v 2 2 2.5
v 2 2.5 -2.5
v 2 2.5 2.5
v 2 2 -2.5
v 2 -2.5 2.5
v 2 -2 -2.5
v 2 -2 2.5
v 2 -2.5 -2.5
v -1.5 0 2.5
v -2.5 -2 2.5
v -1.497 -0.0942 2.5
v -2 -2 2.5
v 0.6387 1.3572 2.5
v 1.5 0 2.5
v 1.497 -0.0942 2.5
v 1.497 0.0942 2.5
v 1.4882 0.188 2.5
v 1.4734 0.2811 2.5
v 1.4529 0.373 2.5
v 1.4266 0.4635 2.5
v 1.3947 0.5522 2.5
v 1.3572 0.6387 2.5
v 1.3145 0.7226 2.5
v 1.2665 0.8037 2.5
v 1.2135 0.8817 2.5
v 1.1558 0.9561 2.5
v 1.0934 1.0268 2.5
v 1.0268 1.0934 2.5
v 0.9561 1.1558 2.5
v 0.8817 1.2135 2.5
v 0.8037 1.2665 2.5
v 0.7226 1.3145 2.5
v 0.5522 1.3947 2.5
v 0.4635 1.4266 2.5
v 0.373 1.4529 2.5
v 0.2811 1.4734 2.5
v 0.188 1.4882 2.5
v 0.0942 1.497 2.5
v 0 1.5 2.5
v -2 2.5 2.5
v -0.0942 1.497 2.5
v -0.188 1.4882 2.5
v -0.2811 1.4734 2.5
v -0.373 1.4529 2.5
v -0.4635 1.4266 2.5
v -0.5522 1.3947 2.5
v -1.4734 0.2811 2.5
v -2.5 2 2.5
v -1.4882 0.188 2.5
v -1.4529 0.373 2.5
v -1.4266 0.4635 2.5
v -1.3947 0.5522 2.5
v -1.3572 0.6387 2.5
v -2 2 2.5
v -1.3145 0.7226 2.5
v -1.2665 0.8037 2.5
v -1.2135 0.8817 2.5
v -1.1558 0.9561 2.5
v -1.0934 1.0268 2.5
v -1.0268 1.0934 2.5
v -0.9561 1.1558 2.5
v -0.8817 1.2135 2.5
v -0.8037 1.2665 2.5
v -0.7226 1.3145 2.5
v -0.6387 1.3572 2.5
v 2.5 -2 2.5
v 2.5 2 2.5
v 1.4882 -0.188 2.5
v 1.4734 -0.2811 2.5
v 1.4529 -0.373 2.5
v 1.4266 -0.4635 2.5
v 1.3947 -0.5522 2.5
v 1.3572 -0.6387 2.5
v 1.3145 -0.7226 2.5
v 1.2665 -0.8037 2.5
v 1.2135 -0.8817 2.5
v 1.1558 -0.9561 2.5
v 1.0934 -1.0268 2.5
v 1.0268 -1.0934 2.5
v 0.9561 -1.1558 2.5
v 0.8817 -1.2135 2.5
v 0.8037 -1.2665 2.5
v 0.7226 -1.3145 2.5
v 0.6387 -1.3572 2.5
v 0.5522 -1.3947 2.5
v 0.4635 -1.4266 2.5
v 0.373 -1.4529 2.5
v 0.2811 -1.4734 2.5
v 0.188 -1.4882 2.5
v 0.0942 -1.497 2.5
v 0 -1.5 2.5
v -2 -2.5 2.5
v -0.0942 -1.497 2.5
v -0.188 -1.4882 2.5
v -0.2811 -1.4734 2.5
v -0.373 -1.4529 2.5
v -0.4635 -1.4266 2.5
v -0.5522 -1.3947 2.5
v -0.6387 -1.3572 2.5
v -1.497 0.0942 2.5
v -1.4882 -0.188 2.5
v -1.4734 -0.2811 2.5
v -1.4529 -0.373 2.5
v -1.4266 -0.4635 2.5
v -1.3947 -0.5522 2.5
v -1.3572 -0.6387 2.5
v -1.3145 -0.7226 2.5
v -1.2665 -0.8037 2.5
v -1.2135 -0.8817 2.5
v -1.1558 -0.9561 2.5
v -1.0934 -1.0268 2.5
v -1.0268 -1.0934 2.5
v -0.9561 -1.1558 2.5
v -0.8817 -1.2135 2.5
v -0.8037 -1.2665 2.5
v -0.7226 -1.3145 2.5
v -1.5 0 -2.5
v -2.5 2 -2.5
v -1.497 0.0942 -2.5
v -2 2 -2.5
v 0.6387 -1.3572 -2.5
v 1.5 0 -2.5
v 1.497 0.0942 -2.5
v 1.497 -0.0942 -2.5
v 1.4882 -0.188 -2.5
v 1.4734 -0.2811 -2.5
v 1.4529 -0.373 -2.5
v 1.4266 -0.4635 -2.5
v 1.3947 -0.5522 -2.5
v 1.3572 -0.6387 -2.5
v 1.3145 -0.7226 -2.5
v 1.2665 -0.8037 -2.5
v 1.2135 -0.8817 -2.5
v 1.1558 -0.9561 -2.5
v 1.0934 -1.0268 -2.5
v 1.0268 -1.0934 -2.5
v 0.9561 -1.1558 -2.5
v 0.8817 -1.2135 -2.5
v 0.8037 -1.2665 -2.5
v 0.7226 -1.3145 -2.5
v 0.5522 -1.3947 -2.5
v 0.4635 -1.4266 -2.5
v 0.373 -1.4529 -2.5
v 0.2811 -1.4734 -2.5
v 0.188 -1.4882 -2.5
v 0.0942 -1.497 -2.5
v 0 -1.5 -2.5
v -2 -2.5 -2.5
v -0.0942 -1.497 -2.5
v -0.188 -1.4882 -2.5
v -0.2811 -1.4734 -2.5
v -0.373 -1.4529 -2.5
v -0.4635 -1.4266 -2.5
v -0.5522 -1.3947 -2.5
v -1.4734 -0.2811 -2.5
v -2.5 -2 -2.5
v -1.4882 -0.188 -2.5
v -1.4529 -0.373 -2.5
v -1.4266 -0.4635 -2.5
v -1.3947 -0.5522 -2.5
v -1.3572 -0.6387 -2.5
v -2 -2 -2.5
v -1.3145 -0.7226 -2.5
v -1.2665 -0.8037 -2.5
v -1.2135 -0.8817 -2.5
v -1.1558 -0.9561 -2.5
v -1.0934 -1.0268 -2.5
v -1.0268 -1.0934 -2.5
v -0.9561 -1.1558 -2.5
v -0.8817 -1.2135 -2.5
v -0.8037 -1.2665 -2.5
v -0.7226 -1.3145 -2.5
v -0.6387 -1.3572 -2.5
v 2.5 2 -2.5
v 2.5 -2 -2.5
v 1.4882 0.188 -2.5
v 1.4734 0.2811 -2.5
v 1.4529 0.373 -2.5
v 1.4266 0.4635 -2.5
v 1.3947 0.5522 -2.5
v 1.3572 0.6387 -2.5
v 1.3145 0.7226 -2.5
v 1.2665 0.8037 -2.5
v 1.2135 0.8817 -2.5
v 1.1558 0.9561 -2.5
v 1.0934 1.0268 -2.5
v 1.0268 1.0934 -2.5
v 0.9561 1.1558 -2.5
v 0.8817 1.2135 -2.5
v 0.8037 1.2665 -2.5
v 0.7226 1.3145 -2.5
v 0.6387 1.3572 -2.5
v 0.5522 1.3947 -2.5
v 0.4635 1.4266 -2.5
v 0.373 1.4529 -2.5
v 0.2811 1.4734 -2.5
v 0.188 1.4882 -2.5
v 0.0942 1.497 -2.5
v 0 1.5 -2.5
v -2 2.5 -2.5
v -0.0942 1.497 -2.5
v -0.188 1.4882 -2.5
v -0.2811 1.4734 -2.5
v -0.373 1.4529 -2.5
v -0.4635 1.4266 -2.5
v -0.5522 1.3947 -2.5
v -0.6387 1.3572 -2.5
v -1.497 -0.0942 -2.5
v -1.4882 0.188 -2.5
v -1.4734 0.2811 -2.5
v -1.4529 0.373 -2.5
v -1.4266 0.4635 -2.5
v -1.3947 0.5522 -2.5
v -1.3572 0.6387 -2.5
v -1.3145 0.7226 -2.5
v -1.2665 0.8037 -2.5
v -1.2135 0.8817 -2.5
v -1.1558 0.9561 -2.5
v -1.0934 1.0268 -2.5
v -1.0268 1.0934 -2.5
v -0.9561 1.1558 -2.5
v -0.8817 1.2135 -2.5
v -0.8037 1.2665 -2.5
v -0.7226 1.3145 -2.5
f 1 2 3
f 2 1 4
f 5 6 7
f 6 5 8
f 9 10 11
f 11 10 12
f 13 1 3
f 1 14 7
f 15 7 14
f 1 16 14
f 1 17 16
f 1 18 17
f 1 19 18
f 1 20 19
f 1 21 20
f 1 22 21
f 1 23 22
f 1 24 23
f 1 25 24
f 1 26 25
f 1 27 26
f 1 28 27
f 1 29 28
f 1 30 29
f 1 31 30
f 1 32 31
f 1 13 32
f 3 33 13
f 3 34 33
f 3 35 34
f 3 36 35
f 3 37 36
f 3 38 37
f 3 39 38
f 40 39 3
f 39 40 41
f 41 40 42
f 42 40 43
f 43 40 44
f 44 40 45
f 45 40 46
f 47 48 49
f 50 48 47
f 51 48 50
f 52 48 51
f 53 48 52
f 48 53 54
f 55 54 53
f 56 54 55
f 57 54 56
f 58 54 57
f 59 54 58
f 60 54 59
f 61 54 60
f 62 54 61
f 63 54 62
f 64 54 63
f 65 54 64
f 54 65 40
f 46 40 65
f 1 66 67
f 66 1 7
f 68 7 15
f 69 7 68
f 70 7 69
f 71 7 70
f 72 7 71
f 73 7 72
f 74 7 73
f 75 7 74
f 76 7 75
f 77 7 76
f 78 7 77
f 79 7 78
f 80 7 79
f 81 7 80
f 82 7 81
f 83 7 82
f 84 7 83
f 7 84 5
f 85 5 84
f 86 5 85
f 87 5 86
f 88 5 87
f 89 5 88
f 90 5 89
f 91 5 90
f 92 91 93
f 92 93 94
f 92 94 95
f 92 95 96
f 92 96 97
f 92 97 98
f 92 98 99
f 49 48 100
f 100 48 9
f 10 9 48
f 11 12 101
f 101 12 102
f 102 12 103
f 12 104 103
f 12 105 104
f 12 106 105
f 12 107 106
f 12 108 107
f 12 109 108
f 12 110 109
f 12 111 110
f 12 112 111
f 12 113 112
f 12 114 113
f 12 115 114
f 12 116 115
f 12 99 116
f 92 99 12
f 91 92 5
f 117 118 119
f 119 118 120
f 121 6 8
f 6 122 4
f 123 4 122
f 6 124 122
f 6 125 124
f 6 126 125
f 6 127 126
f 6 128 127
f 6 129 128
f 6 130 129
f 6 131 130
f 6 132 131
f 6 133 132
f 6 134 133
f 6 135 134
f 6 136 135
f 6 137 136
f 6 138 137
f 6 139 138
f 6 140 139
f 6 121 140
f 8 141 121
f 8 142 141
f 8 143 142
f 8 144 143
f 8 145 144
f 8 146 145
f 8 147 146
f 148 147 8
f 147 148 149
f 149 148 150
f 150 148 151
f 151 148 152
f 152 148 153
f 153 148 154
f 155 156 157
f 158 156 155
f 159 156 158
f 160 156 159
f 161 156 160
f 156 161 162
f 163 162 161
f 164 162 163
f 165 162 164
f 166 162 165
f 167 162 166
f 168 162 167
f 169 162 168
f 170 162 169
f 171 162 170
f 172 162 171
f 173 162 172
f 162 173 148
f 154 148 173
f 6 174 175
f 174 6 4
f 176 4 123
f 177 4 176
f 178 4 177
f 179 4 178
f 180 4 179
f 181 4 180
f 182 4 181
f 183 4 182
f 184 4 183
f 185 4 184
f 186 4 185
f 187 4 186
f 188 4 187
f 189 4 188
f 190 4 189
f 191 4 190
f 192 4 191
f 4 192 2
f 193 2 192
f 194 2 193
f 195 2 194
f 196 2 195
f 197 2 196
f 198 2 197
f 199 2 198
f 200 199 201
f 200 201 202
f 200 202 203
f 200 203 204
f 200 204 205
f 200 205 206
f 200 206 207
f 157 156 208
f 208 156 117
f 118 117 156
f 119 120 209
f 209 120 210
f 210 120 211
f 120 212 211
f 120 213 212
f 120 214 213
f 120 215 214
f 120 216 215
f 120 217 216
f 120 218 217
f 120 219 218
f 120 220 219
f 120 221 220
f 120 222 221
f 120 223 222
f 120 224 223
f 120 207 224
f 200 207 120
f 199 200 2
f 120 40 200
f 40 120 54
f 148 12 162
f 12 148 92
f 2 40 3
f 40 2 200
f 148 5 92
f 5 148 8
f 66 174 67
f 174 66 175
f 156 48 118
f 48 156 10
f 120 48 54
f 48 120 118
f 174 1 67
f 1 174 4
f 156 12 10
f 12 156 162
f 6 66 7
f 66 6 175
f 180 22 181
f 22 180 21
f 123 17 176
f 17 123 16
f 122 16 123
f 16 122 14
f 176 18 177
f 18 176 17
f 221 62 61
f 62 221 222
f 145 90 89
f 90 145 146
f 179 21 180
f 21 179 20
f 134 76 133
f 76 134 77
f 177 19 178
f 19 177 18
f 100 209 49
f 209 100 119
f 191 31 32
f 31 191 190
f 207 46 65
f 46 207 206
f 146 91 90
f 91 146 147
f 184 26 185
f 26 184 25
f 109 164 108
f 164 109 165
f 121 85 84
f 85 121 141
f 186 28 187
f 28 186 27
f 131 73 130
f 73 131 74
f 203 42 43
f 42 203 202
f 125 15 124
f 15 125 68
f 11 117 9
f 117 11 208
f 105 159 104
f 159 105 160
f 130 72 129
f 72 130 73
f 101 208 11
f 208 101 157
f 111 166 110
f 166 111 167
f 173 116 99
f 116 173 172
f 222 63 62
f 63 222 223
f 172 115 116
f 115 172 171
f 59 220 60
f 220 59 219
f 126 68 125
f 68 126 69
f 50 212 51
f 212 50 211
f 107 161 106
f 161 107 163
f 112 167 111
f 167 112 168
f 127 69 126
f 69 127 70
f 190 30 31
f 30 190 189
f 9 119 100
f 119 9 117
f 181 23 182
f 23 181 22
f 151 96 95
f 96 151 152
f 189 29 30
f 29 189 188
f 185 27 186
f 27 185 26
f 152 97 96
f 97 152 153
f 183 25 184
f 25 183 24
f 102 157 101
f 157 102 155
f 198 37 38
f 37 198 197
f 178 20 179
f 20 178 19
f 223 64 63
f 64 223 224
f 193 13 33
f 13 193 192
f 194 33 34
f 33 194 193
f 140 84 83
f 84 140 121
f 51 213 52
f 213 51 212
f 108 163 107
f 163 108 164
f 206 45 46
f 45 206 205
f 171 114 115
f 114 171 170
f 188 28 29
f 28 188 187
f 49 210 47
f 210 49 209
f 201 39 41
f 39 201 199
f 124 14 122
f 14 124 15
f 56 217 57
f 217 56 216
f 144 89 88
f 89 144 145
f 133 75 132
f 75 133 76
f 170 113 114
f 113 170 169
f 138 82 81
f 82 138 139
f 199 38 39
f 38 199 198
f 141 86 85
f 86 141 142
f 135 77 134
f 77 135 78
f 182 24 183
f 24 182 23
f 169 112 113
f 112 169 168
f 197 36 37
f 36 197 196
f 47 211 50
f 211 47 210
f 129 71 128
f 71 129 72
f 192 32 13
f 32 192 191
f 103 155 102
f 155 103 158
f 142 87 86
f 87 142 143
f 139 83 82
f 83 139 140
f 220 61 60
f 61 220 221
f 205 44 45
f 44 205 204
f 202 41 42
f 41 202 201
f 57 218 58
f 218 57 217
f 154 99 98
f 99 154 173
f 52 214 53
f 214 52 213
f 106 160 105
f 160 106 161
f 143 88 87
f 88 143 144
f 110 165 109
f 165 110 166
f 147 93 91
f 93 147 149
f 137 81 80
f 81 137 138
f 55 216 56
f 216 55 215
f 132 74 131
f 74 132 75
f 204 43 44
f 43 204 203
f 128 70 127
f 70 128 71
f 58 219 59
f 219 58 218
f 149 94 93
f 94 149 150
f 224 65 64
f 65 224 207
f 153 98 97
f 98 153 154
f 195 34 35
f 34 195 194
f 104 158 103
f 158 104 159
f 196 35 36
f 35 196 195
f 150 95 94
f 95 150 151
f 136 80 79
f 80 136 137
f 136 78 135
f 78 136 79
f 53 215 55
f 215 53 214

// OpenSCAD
difference() {
    union(){
        cube([4, 5, 5], true);
        cube([5, 4, 5], true);
    }
    cylinder(10, 1.5, 1.5, true, $fn=100);
}
